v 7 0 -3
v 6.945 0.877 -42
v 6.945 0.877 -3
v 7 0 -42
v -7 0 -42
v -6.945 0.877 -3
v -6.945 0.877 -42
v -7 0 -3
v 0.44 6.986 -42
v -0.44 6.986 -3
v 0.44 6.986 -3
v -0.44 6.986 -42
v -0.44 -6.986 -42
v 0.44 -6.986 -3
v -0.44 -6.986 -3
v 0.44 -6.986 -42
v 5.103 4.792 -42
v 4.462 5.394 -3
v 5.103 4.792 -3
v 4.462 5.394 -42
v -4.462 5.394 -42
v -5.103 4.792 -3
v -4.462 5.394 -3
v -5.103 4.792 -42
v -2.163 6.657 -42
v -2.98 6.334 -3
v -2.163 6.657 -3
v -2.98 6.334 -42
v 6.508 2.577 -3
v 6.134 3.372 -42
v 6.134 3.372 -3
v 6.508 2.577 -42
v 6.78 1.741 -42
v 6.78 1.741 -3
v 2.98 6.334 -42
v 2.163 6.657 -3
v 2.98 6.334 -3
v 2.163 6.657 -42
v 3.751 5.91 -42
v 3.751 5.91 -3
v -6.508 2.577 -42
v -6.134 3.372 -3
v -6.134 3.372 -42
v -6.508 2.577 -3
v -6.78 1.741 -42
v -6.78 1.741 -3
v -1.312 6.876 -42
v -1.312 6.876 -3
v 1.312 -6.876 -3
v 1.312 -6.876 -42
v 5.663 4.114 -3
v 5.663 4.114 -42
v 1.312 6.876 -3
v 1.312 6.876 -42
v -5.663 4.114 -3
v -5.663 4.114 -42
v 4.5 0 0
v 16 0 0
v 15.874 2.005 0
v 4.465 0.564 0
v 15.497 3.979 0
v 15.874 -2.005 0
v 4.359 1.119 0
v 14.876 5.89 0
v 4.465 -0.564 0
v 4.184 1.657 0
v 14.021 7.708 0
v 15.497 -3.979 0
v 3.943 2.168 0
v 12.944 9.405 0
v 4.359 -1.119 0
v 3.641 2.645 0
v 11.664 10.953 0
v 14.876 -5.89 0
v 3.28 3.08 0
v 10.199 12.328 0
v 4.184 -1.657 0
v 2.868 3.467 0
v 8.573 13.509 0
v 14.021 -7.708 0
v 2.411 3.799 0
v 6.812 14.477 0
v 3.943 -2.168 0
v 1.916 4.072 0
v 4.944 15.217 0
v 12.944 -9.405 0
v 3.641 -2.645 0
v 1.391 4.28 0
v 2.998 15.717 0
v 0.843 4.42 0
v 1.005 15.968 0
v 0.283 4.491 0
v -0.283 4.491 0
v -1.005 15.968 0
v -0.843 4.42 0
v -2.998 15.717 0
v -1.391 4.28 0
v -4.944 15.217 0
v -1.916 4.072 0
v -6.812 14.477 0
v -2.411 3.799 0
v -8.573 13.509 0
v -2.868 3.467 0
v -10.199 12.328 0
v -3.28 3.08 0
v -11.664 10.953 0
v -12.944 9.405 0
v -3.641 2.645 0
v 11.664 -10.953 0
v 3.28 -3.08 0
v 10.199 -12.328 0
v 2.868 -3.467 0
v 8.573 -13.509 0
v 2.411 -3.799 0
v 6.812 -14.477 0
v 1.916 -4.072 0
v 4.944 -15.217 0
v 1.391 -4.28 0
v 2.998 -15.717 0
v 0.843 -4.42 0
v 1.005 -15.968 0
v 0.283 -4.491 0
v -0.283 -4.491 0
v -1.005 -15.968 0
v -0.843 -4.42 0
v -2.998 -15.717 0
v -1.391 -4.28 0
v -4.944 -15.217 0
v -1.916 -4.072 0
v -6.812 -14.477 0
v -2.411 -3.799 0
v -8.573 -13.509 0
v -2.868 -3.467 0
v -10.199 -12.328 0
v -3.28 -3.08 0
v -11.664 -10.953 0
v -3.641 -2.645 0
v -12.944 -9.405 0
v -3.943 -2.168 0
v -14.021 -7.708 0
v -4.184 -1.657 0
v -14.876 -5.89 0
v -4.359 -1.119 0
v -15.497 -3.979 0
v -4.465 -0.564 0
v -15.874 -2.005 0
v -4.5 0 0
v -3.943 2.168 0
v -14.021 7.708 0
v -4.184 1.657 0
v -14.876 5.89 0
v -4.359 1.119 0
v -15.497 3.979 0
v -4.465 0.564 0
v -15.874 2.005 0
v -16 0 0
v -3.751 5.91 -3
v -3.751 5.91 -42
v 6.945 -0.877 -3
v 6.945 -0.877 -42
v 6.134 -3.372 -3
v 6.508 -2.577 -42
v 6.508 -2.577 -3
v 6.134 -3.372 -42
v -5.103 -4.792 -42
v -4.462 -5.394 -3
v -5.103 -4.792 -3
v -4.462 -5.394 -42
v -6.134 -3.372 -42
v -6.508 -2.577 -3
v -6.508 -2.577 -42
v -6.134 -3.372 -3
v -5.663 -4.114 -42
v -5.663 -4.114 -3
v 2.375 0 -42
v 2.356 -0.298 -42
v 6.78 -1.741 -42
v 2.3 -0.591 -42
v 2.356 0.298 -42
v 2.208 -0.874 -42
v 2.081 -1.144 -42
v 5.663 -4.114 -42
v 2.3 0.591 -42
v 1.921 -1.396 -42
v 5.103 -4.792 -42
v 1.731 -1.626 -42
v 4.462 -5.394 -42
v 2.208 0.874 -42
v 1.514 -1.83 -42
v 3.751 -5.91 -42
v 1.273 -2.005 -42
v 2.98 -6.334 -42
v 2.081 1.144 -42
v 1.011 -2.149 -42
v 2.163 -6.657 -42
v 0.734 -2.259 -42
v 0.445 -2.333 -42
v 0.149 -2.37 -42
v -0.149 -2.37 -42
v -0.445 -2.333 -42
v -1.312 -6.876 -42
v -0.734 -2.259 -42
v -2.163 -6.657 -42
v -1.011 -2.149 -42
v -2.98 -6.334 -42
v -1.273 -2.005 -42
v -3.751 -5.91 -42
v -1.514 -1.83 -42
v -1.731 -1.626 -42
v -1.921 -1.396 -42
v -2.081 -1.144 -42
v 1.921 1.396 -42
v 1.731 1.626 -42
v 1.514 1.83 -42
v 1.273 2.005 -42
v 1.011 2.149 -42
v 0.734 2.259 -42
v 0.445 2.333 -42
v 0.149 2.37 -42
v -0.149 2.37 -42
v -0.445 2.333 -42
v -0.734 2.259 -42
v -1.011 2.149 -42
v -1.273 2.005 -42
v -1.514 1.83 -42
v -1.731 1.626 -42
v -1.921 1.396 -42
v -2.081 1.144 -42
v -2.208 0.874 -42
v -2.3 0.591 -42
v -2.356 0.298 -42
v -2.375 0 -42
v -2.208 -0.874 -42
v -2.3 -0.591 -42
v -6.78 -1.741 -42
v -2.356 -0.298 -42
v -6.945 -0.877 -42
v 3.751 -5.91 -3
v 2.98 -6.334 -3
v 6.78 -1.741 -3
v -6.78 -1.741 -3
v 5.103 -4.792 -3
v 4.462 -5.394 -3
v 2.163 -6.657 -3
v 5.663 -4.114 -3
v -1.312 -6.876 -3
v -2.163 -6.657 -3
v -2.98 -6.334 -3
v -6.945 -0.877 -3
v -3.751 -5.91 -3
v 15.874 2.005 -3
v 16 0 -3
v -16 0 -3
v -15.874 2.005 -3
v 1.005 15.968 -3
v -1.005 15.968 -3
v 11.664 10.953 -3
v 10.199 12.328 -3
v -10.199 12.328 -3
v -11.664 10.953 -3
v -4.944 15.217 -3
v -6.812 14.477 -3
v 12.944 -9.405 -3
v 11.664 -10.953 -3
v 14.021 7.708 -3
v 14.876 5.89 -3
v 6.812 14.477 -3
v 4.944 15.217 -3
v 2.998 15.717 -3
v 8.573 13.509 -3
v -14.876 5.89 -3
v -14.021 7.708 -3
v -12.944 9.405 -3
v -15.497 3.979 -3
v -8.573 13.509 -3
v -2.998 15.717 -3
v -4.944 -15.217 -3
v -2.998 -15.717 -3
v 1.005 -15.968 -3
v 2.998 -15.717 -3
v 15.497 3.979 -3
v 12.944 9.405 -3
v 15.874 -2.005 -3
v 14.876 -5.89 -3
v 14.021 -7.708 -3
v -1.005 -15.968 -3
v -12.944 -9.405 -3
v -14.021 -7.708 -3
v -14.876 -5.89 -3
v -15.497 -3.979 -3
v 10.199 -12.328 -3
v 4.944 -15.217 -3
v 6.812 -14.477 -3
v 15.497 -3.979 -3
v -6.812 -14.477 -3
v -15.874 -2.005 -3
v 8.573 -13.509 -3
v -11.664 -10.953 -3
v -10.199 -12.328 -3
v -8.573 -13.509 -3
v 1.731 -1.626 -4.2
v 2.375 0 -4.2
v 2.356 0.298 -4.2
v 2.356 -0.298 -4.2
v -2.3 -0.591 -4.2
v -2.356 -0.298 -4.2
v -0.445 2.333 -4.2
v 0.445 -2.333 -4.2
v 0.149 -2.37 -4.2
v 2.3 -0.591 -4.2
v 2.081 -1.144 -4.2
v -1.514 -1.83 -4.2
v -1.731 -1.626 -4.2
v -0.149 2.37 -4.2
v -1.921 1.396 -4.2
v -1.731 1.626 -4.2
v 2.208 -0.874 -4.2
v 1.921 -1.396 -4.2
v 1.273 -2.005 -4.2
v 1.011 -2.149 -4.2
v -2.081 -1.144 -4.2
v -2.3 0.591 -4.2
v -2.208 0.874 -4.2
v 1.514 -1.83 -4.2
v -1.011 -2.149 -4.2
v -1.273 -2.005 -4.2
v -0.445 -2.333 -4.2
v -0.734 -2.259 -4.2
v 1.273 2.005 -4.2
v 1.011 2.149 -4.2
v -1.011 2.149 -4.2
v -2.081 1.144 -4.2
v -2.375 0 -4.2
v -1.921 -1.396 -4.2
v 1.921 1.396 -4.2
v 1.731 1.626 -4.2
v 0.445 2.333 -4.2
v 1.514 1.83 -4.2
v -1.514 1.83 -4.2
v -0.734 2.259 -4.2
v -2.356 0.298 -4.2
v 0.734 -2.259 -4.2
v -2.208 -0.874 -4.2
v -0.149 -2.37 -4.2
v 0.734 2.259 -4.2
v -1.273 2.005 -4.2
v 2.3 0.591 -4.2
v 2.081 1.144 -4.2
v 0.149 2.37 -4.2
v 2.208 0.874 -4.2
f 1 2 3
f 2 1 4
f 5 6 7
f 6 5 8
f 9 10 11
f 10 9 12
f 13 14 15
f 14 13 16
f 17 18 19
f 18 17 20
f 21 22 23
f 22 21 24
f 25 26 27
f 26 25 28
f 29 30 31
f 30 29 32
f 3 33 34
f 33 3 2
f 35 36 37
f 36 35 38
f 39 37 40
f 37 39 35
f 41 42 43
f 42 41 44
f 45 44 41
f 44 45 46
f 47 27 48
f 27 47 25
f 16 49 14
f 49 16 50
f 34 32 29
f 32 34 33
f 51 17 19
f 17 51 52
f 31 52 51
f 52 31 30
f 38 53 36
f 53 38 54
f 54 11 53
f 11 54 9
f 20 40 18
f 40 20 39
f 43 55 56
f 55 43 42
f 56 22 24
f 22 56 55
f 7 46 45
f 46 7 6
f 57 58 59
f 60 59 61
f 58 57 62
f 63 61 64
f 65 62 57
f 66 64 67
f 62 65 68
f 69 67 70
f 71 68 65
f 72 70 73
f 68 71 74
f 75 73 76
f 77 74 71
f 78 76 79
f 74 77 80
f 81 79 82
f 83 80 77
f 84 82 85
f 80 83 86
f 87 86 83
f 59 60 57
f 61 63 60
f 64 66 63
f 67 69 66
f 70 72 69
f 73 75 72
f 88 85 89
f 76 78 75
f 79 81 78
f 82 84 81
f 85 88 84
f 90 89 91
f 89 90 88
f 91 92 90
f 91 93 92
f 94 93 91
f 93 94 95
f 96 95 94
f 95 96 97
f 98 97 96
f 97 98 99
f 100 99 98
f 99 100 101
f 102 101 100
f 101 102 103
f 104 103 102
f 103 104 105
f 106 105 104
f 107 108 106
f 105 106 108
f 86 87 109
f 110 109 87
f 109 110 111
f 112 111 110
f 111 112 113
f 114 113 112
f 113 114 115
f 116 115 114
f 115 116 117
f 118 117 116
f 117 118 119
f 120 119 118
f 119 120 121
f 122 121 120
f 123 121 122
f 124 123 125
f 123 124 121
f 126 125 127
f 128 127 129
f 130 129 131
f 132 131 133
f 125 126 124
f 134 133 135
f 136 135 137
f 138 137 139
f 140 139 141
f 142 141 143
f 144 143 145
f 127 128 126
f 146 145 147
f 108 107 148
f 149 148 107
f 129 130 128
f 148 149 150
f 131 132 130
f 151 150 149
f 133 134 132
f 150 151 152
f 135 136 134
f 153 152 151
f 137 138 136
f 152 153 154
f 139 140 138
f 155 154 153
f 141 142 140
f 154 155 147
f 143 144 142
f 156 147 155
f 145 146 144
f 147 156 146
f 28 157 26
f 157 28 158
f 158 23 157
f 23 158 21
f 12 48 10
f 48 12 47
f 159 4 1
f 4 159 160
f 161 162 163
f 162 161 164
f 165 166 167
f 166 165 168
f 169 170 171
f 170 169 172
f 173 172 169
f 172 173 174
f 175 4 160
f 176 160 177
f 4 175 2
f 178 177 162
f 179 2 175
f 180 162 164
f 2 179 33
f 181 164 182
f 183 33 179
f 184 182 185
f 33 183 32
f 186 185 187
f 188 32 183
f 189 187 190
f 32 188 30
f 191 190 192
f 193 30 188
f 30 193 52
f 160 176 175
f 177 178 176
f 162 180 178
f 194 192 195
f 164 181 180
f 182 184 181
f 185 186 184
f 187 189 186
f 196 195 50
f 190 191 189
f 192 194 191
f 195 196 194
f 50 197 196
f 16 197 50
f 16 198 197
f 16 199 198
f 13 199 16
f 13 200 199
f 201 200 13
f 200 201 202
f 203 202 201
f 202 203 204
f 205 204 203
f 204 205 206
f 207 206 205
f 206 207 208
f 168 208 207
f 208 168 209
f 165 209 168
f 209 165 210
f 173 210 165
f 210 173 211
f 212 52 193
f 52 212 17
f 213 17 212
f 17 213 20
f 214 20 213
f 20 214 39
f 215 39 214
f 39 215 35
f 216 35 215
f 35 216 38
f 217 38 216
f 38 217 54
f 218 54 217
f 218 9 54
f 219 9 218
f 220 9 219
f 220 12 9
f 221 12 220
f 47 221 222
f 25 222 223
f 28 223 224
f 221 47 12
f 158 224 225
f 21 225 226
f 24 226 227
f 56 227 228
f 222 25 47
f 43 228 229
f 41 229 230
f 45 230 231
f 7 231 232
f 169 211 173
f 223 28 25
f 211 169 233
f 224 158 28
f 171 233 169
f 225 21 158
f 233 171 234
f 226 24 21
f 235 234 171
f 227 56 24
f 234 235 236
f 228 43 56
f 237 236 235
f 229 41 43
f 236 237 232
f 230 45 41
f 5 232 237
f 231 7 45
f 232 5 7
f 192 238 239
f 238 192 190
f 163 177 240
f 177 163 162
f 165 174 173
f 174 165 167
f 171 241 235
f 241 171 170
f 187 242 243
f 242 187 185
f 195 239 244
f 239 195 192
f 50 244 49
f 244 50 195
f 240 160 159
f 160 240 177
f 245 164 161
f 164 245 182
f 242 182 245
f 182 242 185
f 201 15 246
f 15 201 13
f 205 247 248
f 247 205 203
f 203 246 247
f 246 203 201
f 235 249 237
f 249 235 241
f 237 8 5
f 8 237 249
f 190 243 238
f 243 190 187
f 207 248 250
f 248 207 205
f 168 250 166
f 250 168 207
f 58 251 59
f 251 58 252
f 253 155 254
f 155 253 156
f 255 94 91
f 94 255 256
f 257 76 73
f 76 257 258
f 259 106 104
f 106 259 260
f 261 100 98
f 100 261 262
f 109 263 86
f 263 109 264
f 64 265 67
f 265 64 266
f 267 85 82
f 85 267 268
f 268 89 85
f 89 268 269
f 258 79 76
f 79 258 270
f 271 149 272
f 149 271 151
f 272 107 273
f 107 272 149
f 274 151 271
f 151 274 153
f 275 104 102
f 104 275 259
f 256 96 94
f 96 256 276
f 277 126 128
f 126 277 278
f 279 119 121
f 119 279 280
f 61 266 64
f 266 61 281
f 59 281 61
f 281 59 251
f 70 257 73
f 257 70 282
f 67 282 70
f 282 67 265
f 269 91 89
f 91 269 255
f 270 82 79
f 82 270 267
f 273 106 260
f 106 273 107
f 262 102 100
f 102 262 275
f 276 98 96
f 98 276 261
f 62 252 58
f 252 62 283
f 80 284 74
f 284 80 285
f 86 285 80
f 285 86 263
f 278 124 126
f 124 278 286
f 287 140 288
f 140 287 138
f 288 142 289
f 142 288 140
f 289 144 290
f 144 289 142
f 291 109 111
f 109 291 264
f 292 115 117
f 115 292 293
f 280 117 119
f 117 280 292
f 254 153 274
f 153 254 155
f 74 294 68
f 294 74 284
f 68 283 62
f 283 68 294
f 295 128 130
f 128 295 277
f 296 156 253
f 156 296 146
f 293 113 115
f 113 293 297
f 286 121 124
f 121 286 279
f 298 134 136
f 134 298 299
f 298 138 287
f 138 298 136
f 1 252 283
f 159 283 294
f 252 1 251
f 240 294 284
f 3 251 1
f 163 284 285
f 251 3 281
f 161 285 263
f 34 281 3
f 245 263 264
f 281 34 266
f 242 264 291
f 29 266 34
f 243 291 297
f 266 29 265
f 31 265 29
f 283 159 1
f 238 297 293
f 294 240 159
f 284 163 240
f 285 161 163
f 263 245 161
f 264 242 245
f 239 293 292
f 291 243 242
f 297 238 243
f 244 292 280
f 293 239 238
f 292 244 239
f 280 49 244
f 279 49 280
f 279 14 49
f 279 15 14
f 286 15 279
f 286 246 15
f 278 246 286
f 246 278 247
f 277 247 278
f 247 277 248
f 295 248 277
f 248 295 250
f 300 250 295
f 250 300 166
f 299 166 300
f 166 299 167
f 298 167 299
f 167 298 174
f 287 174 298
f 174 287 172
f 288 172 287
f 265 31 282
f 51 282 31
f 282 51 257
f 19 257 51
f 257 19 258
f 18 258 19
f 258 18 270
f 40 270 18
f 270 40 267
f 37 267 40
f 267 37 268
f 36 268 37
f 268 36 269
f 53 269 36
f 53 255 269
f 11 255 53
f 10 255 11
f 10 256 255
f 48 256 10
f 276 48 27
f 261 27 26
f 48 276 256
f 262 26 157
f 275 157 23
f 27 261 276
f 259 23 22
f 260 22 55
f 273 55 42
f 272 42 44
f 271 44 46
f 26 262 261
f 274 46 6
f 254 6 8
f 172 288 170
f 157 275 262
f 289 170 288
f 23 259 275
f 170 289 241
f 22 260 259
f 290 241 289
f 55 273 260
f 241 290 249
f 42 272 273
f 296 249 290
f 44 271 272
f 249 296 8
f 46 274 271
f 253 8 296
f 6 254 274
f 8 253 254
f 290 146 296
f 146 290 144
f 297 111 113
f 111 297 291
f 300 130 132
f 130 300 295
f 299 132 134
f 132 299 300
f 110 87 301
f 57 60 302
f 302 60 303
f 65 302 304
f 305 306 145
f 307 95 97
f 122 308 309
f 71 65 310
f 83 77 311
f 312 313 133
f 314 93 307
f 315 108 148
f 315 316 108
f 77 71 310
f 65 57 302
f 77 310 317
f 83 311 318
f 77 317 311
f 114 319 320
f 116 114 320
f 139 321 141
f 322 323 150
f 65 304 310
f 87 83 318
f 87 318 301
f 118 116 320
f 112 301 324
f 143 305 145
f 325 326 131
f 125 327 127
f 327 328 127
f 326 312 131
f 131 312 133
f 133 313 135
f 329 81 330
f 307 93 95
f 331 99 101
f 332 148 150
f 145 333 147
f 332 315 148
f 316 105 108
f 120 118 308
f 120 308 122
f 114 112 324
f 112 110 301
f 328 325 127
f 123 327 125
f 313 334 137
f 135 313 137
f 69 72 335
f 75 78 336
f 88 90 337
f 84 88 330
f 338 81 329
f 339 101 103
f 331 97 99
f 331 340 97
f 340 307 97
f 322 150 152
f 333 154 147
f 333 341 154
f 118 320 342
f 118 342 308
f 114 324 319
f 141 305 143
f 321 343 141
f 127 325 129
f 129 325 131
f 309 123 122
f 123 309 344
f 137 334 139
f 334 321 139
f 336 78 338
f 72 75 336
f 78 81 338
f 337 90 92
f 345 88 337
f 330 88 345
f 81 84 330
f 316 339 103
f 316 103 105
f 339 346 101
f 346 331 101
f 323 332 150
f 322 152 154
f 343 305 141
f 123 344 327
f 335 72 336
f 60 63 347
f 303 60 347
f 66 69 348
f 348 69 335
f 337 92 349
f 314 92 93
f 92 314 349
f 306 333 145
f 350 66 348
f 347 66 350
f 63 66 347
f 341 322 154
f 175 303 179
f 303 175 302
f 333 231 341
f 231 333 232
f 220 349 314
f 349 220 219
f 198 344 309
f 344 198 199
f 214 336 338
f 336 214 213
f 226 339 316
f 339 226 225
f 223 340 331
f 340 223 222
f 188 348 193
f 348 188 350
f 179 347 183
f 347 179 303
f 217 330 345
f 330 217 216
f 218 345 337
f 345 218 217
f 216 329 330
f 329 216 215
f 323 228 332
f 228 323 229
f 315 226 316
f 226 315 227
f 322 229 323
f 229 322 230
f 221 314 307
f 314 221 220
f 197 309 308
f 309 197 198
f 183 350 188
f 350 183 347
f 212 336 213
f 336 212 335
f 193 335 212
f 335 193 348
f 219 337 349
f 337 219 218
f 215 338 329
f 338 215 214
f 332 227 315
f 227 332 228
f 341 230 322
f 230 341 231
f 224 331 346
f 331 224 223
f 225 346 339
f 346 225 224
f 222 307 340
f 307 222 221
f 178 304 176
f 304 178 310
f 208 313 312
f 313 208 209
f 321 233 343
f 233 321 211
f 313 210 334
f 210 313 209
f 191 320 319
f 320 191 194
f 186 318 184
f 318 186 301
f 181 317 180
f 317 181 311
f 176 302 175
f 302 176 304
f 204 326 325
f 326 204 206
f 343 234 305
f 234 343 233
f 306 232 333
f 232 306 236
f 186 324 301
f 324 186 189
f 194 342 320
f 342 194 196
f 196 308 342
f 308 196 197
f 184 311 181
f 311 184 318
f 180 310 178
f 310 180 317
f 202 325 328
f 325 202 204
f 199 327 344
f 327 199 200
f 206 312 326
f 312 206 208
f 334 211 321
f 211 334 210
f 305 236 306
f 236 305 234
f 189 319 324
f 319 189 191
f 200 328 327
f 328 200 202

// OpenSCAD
$fn = 50;


difference() {
	union() {
		translate(v = [0, 0, -42.0000000000]) {
			cylinder(h = 42, r = 7.0000000000);
		}
		translate(v = [0, 0, -3.0000000000]) {
			cylinder(h = 3, r = 16.0000000000);
		}
	}
	union() {
		translate(v = [0, 0, 0]) {
			rotate(a = [0, 0, 0]) {
				difference() {
					union() {
						#translate(v = [0, 0, -42.0000000000]) {
							cylinder(h = 42, r = 2.2500000000);
						}
						#translate(v = [0, 0, -4.2000000000]) {
							cylinder(h = 4.2000000000, r = 7.0000000000, r1 = 2.3750000000, r2 = 4.5000000000);
						}
						#translate(v = [0, 0, -42.0000000000]) {
							cylinder(h = 42, r = 2.3750000000);
						}
						#translate(v = [0, 0, -42.0000000000]) {
							cylinder(h = 42, r = 2.2500000000);
						}
					}
					union();
				}
			}
		}
	}
}
